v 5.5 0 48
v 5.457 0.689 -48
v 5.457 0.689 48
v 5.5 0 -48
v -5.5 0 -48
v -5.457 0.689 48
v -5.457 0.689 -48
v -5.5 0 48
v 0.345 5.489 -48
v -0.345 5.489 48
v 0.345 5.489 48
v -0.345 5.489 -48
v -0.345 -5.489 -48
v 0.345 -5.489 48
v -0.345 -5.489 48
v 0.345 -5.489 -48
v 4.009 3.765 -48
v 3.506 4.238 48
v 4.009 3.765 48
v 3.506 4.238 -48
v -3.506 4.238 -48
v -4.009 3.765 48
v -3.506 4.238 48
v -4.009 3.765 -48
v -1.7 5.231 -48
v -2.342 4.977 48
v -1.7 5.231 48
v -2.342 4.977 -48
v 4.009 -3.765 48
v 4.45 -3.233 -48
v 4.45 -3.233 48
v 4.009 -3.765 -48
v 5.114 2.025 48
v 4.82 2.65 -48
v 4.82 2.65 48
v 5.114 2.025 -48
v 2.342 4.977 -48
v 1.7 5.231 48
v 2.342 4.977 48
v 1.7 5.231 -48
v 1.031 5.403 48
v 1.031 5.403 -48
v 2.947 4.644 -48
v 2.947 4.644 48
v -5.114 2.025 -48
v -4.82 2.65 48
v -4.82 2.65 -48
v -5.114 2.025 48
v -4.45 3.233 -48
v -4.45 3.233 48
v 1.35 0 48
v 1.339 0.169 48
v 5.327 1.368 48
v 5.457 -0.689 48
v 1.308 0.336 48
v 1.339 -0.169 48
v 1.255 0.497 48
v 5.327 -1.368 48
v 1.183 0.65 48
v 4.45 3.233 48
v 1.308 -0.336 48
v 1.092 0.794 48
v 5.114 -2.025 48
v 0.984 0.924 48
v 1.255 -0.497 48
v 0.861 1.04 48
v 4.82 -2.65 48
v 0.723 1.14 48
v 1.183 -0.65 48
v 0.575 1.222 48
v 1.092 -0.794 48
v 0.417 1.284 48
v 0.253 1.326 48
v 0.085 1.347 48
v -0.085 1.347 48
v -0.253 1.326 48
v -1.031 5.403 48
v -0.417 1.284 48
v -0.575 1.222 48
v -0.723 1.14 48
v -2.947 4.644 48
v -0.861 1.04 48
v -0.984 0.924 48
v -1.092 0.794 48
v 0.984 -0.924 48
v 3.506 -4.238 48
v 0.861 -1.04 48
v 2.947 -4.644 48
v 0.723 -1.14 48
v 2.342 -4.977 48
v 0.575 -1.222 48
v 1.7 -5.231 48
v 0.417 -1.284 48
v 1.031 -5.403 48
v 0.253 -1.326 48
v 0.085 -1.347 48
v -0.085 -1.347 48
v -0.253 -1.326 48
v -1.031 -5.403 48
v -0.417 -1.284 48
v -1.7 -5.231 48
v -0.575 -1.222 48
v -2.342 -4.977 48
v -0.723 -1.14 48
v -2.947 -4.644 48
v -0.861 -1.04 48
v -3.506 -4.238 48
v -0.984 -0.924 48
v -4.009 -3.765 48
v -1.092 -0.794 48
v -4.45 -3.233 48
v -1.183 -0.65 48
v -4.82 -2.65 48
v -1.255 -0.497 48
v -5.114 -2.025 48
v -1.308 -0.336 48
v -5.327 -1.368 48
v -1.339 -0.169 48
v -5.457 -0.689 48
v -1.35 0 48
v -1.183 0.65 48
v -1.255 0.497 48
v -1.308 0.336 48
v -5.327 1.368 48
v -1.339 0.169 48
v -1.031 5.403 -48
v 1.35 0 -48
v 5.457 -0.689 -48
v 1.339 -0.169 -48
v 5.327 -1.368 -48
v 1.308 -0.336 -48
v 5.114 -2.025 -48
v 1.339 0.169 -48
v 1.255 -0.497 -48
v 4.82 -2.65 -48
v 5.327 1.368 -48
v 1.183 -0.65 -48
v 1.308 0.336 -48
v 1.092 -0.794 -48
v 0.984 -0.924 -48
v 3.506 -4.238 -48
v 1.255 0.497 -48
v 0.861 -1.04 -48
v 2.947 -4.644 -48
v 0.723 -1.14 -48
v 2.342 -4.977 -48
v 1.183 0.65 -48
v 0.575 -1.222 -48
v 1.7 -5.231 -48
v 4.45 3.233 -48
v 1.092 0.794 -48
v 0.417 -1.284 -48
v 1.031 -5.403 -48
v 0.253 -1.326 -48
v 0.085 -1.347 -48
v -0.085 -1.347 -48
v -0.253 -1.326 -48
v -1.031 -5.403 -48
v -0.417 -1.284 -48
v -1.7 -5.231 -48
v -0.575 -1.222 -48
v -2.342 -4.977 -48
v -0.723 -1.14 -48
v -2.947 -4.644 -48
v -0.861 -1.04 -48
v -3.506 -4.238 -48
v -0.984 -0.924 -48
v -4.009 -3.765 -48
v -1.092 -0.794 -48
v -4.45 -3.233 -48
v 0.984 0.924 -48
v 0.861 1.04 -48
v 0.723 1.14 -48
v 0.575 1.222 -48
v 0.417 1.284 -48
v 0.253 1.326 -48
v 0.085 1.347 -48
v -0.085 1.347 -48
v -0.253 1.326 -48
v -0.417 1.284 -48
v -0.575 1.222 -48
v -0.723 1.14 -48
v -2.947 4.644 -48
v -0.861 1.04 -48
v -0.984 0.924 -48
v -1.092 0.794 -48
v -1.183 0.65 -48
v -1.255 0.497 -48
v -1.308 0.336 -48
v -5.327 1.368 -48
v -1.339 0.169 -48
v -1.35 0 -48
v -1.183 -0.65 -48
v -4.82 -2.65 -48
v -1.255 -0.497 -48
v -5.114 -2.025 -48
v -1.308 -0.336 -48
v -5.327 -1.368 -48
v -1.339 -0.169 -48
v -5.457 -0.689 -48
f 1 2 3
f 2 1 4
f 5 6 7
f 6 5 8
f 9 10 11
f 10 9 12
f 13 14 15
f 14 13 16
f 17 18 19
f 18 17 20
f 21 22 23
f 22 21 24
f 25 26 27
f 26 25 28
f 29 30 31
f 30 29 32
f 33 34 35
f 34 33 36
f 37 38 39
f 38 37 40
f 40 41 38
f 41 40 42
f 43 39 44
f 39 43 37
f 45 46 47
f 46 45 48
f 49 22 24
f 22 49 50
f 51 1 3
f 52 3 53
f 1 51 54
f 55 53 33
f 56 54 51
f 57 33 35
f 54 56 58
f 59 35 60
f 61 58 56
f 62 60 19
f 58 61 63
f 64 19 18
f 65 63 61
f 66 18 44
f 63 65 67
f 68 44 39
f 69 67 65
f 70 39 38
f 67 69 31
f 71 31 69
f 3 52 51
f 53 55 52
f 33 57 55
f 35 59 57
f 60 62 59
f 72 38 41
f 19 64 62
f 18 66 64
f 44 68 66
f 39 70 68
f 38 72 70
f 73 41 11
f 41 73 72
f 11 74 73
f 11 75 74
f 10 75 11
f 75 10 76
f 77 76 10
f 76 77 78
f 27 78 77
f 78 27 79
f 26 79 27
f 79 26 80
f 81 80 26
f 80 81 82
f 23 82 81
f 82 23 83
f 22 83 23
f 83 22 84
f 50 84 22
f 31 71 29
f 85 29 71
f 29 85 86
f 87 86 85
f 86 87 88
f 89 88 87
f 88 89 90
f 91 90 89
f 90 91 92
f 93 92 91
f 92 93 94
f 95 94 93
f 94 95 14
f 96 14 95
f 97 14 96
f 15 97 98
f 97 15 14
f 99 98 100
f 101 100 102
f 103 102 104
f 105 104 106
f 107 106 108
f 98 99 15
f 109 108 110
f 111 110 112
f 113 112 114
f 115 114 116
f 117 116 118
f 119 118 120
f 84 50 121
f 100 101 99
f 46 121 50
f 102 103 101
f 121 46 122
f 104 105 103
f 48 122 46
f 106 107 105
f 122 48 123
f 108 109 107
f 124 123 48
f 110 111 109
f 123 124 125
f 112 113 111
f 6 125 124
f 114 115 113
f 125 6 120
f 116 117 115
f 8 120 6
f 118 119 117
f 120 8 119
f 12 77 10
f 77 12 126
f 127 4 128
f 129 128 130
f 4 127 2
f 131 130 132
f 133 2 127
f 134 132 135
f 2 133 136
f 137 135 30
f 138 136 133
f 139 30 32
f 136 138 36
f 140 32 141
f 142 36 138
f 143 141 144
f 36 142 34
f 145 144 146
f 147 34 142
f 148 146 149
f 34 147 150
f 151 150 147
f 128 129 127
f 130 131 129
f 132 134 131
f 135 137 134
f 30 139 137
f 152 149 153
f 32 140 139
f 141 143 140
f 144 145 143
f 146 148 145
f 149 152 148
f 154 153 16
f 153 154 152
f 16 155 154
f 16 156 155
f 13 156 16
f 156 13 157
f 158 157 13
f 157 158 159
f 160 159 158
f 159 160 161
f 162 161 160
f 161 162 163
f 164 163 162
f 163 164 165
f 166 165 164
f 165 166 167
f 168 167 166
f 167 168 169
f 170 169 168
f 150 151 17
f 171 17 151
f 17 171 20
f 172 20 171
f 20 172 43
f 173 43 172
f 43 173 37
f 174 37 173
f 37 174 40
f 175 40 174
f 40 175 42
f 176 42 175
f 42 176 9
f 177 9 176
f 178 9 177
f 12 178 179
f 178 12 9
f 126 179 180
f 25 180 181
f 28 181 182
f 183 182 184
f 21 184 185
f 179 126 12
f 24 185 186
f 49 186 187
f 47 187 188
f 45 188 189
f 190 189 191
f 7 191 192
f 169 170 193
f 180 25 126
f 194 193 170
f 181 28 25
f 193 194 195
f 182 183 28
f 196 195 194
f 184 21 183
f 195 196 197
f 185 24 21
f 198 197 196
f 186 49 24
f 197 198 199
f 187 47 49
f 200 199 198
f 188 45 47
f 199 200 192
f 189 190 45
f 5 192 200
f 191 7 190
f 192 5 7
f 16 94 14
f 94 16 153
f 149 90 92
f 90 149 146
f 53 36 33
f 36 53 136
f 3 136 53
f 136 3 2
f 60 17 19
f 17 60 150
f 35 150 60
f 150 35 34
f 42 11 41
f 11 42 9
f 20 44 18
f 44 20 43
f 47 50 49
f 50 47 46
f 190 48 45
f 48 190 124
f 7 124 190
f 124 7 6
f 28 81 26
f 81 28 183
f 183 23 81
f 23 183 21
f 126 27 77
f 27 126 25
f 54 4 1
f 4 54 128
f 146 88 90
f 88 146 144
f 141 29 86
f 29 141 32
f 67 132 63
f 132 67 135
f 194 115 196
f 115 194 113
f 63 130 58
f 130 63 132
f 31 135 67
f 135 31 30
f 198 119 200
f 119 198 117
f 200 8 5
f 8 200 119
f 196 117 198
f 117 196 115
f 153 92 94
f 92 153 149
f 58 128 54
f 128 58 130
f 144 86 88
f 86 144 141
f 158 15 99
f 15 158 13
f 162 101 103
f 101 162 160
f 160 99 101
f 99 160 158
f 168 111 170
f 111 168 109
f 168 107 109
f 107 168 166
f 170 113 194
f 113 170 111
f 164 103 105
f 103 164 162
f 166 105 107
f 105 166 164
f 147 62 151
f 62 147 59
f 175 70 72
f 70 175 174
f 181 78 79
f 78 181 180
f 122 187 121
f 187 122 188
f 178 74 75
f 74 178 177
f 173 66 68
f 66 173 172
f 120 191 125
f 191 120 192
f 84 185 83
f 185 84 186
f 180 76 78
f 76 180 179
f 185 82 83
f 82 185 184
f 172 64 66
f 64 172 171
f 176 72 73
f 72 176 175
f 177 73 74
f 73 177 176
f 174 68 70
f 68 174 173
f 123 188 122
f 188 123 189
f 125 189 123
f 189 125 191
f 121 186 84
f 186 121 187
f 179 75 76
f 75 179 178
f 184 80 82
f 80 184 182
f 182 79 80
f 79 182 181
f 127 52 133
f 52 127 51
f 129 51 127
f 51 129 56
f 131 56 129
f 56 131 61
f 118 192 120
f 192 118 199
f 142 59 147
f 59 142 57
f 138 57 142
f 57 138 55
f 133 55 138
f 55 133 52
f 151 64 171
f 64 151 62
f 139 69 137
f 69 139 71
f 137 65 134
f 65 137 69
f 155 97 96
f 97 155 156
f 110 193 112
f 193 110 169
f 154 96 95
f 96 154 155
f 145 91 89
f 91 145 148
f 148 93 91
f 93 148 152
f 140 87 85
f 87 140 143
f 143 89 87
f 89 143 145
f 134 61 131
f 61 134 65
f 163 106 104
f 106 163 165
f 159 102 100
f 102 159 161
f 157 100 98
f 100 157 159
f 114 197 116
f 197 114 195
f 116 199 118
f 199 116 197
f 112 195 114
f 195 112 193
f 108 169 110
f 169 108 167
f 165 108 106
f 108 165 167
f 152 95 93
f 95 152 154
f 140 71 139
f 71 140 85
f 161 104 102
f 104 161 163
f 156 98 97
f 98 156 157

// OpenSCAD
$fn = 50;


difference() {
	union() {
		translate(v = [0, 0, -48.0000000000]) {
			cylinder(h = 96, r = 5.5000000000);
		}
	}
	union() {
		translate(v = [0, 0, -100.0000000000]) {
			cylinder(h = 200, r = 1.3500000000);
		}
	}
}
